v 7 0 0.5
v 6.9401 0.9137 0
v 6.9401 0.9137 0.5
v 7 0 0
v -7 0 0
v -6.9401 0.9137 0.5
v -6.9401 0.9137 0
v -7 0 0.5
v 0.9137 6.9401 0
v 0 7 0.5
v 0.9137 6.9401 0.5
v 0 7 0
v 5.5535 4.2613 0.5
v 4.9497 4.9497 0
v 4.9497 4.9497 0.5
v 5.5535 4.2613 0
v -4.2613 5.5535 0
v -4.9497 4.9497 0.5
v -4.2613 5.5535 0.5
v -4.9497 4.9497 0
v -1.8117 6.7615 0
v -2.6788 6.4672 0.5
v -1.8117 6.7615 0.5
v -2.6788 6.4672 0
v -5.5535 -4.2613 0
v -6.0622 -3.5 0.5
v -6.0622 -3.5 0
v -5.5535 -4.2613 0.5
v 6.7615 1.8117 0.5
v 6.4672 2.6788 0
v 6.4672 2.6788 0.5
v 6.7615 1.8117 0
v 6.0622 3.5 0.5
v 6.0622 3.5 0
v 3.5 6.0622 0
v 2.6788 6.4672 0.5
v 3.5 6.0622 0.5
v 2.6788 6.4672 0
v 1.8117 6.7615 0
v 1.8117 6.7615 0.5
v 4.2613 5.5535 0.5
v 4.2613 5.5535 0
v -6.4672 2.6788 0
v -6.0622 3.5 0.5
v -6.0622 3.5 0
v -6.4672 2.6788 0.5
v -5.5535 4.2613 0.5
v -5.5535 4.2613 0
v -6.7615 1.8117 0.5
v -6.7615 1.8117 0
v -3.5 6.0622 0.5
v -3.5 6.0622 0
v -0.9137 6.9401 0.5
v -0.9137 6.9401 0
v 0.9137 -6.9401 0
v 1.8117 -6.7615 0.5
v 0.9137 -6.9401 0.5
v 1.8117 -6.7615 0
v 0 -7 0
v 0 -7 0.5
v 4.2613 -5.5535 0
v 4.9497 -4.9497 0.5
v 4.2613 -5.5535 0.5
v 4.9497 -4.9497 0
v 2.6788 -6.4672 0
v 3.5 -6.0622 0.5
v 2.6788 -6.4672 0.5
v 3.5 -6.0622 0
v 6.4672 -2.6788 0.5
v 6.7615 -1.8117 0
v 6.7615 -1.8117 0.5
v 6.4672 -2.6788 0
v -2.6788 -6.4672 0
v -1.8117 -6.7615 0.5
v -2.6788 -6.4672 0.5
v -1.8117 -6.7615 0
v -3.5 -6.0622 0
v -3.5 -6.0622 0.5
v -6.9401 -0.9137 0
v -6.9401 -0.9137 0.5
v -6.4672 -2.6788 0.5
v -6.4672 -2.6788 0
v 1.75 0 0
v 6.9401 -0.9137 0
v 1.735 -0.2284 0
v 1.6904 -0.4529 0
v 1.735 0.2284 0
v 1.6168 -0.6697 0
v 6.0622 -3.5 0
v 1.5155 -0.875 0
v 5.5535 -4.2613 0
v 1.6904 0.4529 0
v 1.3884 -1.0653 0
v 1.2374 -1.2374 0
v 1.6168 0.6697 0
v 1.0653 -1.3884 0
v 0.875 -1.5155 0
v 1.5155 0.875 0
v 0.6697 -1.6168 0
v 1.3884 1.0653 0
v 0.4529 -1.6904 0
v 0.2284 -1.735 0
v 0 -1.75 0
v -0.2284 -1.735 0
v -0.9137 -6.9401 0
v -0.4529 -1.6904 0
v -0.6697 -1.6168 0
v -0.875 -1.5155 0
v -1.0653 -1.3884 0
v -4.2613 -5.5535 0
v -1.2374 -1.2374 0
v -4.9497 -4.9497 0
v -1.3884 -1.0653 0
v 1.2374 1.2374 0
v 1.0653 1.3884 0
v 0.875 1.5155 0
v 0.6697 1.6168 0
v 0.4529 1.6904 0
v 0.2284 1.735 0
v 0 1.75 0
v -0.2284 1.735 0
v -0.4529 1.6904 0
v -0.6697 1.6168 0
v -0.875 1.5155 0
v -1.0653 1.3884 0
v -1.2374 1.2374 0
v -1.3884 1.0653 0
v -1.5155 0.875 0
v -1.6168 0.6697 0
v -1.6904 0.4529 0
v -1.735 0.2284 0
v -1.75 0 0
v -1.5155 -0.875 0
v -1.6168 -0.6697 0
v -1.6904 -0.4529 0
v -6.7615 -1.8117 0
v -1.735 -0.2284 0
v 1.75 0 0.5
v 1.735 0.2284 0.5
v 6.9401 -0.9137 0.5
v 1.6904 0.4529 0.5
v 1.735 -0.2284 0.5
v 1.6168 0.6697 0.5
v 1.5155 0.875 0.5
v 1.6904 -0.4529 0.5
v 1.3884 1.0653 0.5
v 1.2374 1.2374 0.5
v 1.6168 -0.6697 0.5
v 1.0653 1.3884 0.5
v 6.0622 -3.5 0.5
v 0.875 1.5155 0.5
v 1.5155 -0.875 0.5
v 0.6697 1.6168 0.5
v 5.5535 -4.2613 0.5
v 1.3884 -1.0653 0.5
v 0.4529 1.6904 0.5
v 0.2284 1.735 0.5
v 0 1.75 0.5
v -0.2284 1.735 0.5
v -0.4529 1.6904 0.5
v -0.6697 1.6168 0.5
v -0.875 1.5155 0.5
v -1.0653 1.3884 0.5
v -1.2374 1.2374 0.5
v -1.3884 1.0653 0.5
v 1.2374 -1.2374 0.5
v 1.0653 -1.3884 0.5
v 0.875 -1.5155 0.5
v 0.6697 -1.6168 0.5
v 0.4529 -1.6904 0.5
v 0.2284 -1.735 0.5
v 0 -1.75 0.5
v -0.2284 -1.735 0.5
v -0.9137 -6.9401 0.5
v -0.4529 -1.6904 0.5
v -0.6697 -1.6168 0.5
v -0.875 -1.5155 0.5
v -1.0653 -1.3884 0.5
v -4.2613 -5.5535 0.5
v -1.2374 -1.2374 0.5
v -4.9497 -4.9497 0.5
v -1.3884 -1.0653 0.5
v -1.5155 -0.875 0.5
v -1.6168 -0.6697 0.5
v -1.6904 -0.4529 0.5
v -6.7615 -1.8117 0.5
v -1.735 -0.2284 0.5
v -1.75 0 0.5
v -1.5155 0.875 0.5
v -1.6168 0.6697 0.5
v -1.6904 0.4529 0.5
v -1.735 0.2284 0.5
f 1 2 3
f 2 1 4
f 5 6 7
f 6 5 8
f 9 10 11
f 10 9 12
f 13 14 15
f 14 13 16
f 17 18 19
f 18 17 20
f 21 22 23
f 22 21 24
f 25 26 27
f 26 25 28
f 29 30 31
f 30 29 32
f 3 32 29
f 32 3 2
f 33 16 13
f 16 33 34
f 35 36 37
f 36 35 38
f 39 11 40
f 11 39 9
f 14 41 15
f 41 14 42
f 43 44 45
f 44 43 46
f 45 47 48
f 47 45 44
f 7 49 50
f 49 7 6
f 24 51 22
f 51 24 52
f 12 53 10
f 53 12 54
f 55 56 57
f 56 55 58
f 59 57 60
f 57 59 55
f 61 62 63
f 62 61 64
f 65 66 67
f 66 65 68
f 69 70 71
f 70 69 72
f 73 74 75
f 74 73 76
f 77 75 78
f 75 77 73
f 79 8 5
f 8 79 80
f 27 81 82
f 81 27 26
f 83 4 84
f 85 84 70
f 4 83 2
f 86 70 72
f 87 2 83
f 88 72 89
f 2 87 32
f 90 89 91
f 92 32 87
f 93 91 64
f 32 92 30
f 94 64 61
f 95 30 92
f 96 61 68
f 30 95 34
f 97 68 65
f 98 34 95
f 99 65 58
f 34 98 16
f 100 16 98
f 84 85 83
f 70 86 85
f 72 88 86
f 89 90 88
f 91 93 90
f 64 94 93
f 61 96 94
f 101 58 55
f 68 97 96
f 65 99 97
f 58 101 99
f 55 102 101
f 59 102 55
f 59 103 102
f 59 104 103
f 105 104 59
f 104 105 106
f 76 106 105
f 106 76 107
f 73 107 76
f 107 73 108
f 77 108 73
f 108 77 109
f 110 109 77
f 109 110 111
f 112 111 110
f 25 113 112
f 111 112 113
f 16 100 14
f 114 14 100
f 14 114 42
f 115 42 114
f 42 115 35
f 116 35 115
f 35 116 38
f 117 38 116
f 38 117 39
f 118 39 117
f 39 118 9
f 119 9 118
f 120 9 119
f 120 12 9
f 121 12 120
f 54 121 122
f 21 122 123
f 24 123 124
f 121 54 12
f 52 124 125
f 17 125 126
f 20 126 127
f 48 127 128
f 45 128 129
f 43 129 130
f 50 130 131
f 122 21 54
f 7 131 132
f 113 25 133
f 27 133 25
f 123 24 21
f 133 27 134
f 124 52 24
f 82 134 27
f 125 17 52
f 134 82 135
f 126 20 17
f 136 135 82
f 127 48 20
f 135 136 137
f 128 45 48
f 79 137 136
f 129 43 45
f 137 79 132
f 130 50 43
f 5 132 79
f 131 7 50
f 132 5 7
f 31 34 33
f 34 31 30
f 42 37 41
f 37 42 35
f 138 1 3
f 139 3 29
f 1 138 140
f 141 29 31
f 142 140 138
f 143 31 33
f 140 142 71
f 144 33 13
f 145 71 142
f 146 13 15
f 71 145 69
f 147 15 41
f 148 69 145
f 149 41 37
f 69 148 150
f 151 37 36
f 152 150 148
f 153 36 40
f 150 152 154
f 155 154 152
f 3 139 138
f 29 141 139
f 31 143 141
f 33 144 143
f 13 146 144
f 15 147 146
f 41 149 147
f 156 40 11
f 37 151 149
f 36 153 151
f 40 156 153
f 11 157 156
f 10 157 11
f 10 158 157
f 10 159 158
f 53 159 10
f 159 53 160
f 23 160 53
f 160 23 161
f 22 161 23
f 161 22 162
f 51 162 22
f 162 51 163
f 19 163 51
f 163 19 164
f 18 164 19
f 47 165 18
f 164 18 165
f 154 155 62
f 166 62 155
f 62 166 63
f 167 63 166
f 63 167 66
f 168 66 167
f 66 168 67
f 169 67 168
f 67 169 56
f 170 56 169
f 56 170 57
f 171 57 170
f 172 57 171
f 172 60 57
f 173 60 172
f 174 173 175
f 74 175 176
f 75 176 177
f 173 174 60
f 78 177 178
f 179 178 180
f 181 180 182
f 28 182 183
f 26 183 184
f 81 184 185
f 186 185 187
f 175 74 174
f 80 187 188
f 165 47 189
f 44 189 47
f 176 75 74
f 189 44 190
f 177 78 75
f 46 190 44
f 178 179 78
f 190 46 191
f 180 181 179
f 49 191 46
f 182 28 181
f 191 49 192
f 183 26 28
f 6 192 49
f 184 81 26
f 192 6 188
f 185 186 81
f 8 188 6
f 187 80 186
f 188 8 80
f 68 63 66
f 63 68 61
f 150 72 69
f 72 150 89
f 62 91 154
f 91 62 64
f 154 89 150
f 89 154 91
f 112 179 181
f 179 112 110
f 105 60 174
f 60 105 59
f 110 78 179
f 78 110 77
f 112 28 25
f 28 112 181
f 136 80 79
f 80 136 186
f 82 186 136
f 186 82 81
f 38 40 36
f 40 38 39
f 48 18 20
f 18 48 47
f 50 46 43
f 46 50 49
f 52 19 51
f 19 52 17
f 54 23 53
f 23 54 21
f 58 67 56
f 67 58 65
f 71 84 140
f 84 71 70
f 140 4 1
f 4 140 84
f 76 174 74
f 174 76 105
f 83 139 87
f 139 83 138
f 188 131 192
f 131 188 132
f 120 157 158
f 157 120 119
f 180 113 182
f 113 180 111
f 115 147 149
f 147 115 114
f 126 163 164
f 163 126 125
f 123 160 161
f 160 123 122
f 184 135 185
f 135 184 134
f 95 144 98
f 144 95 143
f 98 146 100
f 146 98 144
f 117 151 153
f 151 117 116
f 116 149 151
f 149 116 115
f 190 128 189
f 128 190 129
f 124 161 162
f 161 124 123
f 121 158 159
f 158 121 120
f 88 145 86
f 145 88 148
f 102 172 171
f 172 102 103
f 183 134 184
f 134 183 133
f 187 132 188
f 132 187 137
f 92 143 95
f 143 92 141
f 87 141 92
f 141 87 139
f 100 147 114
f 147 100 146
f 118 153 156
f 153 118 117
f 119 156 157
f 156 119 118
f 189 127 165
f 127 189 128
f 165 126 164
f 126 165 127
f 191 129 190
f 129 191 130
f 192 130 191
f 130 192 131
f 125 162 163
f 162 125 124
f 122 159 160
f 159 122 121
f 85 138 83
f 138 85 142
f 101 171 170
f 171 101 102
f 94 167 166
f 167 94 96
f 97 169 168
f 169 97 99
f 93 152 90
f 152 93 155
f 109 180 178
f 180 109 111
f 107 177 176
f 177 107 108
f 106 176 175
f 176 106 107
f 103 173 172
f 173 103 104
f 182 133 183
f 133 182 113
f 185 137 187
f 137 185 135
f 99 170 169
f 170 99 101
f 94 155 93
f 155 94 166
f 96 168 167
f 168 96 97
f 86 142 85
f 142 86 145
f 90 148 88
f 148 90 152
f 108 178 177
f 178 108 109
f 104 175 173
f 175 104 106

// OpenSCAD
// file: parameters.scad
// =============================================================================
// Gen-BU — nightly 2026-10-10 (physics_scorer, honest magpylib watts)
// New pole/coil ratio on a much bigger ring: twelve narrow 26.4° bobbins (r 52–82 mm, 13.5 mm build, 8.1 mm copper) under 8 poles pushed out to R66, so each coil spans 120° electrical with a short mean turn while the poles sit 52 mm apart (less pole-to-pole leakage) and move faster. 8p/12c was dismissed on earlier nights at 3.2 W because it was only scanned on the R50 ring; tonight it climbs steadily with ring radius (R50 3.39 → R57 4.58 → R59.5 5.18 → R66 6.08 W scan). Diametric Ø5 assists turned out to LOWER this layout, so none are fitted. A ring this big no longer fits a one-plate layout with disc endbells, so the endbells become two crossed 44 mm bar bearing bridges, which is what keeps it on one 410 mm plate.
// Clocking 0 deg (magnets N facing S) + D-flat keyed bore + index notch + flip-symmetric hole map.
// Windable 2-piece bobbin; turns = physics_scorer turns_fit; copper only between flanges.
// Steel back-iron: 2× Ø158 × 4.76 mm (3/16") mild-steel discs (steel_backiron_disc.dxf); magnets sit ON the steel
// (through-pockets) -> score with --back-iron. Night 2026-10-10.
// =============================================================================
topology            = "dual_rotor";

// --- Wire / winding (physics_scorer winding-fit) -------------------------------
wire_awg            = 26;
wire_od             = 0.45;     // insulated OD mm (bare 0.405)
fill_realistic      = 0.65;     // insulated-wire area / window (DENSE layered wind with a jig; scorer cap 0.65)
turns               = 446;       // = physics_scorer turns_fit (do NOT raise)
coil_former_type    = "bobbin";
coil_core_inset     = 13.50;     // radial copper build: hub = copper boundary inset by this
wind_build_axial    = 0.0;      // nothing proud of the flanges
wind_build_radial   = 0.0;

// --- Bobbin (base + lid) ---------------------------------------------------------
coil_id_r           = 52.00;    // copper boundary sector
coil_od_r           = 82.00;
span_deg            = 26.36;    // = pitch - 2*asin((wall+0.85)/coil_id_r) -> >=1.2 mm stator web
former_web          = 8.10;     // copper height between flanges (TALL copper: steel keeps Bz up)
flange_t            = 0.80;     // >= 0.8 mm FDM wall rule (tall winds push on the flanges)
wall                = 0.80;     // flange lip beyond copper
former_bare_h       = former_web + 2 * flange_t;
coil_envelope_h     = former_bare_h + 2 * wind_build_axial;
tab_w               = 7.0;
tab_len             = 7.0;
tab_h               = former_bare_h / 2;
pin_d               = 1.9;      // 1.75 mm filament locating pin
coil_mount_r        = coil_od_r + 0.2 + 4.0;
lead_y              = 1.6;
lead_slot_w         = 0.9;
lead_groove_d       = 0.6;

// --- Gap -------------------------------------------------------------------------
run_clear           = 0.50;     // rotor face -> flange
gap_spacer_h        = run_clear + wind_build_axial;
m2m                 = coil_envelope_h + 2 * run_clear;   // rotor face to rotor face (= gap_sleeve length)

// --- Stator ----------------------------------------------------------------------
coil_stations       = 12;
bay_clear           = 0.25;
stator_thick        = former_bare_h;                        // bobbins flush both faces
stator_od           = 182;
shaft_clear_stator  = 14.0;     // stator is static; gap sleeve OD 12 spins inside

// --- Rotor(s) --------------------------------------------------------------------
magnet_Br           = 1.43;     // N52
magnet_d_large      = 20.0;
magnet_h_large      = 5.0;      // one O20x5 per pocket
magnet_h_small      = 5.0;      // unused: no O5 pockets in this kit
halbach_magnetisation = "none";  // NO O5 assist magnets in this kit (scan: they lower the 4-pole score)
rotor_b_same_axis   = true;     // same-index magnets share one axis: N faces S across the gap
large_pocket_d      = 20.3;
small_pocket_d      = 5.3;
pocket_h            = 5.00;     // THROUGH the carrier: magnet back face sits on the steel disc (FLUSH seat: carrier = magnet height, magnet face level with the rotor face)
large_n             = 8;
R_large             = 66.0;
small_r_list        = [];       // no O5 pockets
carrier_od          = 158.0;
carrier_thick       = pocket_h;
hub_h               = 12.0;     // > steel_t + insert: radial set-screw clears the steel
hub_od              = 24.0;     // slim hub so the M4 brace rods fit at R~18 inside the coil ring
hub_insert_d        = 4.0;      // M3 heat-set insert, radial, bears on the D-flat
rotor_b_offset_deg  = 0.0;      // CLOCKING: magnets directly opposite
shaft_key           = "dflat";
dflat_depth         = 0.5;      // 8 mm shaft with 0.5 mm flat (7.5 across flat)
index_notch_d       = 3.0;

// --- Steel back-iron (buyable laser-cut) -------------------------------------------
steel_t             = 4.76;      // mild steel thickness (image method ignores it; sized from steel_flux.py so the return path stays well below saturation)
steel_center_hole   = 26.0;     // slips over the rotor hub (OD 24)
steel_od            = carrier_od;   // steel disc OD = rotor carrier OD

// --- Modular MAX interface ----------------------------------------------------------
shaft_bore          = 8.35;
dflat_x             = 4.0 - dflat_depth + (shaft_bore - 8.0) / 2;
bearing_d           = 21.85;
bearing_h           = 7.2;
m3_clear            = 3.5;
bolt_r_inner        = 30.0;     // M3 steel-disc clamp bolts (inside the magnet ring)
bolt_n_inner        = 4;
bolt_inner_angles   = [0, 90, 180, 270];
bolt_r_outer        = 44.0;     // second M3 steel-disc clamp ring
bolt_outer_angles   = [67.5, 112.5, 247.5, 292.5];
flange_bolt_r       = 85.0;     // frame rods: OUTSIDE the rotor OD (rotors spin inside them)
flange_bolt_n       = 4;
flange_bolt_offset  = 45.00;    // between coil stations -> never cuts a lead groove/tab
brace_r             = 18.0;
brace_d             = 4.3;      // temporary M4 jack rods (assembly only)
brace_n             = 4;
brace_angles        = [45, 135, 225, 315];          // flip-symmetric

spacer_pad_od       = 14.0;
spacer_pad_id       = m3_clear;
endbell_od          = 180.0;
endbell_thick       = 8.0;
endbell_shaft_clear = 10.0;
collar_h            = 10.0;
standoff_od         = 9.0;
frame_standoff_h    = run_clear + carrier_thick + hub_h + collar_h + 2.0;
sleeve_od           = 12.0;
plate_max_mm        = 410;

$fn = 64;
// main file
// Gen-BU — assembly gap shim, h = run_clear (rotor face -> flange); copper is inside the flanges
include <parameters.scad>;
$fn = 48;
difference() {
    cylinder(d=spacer_pad_od, h=gap_spacer_h);
    translate([0, 0, -0.1]) cylinder(d=spacer_pad_id, h=gap_spacer_h + 0.2);
}
